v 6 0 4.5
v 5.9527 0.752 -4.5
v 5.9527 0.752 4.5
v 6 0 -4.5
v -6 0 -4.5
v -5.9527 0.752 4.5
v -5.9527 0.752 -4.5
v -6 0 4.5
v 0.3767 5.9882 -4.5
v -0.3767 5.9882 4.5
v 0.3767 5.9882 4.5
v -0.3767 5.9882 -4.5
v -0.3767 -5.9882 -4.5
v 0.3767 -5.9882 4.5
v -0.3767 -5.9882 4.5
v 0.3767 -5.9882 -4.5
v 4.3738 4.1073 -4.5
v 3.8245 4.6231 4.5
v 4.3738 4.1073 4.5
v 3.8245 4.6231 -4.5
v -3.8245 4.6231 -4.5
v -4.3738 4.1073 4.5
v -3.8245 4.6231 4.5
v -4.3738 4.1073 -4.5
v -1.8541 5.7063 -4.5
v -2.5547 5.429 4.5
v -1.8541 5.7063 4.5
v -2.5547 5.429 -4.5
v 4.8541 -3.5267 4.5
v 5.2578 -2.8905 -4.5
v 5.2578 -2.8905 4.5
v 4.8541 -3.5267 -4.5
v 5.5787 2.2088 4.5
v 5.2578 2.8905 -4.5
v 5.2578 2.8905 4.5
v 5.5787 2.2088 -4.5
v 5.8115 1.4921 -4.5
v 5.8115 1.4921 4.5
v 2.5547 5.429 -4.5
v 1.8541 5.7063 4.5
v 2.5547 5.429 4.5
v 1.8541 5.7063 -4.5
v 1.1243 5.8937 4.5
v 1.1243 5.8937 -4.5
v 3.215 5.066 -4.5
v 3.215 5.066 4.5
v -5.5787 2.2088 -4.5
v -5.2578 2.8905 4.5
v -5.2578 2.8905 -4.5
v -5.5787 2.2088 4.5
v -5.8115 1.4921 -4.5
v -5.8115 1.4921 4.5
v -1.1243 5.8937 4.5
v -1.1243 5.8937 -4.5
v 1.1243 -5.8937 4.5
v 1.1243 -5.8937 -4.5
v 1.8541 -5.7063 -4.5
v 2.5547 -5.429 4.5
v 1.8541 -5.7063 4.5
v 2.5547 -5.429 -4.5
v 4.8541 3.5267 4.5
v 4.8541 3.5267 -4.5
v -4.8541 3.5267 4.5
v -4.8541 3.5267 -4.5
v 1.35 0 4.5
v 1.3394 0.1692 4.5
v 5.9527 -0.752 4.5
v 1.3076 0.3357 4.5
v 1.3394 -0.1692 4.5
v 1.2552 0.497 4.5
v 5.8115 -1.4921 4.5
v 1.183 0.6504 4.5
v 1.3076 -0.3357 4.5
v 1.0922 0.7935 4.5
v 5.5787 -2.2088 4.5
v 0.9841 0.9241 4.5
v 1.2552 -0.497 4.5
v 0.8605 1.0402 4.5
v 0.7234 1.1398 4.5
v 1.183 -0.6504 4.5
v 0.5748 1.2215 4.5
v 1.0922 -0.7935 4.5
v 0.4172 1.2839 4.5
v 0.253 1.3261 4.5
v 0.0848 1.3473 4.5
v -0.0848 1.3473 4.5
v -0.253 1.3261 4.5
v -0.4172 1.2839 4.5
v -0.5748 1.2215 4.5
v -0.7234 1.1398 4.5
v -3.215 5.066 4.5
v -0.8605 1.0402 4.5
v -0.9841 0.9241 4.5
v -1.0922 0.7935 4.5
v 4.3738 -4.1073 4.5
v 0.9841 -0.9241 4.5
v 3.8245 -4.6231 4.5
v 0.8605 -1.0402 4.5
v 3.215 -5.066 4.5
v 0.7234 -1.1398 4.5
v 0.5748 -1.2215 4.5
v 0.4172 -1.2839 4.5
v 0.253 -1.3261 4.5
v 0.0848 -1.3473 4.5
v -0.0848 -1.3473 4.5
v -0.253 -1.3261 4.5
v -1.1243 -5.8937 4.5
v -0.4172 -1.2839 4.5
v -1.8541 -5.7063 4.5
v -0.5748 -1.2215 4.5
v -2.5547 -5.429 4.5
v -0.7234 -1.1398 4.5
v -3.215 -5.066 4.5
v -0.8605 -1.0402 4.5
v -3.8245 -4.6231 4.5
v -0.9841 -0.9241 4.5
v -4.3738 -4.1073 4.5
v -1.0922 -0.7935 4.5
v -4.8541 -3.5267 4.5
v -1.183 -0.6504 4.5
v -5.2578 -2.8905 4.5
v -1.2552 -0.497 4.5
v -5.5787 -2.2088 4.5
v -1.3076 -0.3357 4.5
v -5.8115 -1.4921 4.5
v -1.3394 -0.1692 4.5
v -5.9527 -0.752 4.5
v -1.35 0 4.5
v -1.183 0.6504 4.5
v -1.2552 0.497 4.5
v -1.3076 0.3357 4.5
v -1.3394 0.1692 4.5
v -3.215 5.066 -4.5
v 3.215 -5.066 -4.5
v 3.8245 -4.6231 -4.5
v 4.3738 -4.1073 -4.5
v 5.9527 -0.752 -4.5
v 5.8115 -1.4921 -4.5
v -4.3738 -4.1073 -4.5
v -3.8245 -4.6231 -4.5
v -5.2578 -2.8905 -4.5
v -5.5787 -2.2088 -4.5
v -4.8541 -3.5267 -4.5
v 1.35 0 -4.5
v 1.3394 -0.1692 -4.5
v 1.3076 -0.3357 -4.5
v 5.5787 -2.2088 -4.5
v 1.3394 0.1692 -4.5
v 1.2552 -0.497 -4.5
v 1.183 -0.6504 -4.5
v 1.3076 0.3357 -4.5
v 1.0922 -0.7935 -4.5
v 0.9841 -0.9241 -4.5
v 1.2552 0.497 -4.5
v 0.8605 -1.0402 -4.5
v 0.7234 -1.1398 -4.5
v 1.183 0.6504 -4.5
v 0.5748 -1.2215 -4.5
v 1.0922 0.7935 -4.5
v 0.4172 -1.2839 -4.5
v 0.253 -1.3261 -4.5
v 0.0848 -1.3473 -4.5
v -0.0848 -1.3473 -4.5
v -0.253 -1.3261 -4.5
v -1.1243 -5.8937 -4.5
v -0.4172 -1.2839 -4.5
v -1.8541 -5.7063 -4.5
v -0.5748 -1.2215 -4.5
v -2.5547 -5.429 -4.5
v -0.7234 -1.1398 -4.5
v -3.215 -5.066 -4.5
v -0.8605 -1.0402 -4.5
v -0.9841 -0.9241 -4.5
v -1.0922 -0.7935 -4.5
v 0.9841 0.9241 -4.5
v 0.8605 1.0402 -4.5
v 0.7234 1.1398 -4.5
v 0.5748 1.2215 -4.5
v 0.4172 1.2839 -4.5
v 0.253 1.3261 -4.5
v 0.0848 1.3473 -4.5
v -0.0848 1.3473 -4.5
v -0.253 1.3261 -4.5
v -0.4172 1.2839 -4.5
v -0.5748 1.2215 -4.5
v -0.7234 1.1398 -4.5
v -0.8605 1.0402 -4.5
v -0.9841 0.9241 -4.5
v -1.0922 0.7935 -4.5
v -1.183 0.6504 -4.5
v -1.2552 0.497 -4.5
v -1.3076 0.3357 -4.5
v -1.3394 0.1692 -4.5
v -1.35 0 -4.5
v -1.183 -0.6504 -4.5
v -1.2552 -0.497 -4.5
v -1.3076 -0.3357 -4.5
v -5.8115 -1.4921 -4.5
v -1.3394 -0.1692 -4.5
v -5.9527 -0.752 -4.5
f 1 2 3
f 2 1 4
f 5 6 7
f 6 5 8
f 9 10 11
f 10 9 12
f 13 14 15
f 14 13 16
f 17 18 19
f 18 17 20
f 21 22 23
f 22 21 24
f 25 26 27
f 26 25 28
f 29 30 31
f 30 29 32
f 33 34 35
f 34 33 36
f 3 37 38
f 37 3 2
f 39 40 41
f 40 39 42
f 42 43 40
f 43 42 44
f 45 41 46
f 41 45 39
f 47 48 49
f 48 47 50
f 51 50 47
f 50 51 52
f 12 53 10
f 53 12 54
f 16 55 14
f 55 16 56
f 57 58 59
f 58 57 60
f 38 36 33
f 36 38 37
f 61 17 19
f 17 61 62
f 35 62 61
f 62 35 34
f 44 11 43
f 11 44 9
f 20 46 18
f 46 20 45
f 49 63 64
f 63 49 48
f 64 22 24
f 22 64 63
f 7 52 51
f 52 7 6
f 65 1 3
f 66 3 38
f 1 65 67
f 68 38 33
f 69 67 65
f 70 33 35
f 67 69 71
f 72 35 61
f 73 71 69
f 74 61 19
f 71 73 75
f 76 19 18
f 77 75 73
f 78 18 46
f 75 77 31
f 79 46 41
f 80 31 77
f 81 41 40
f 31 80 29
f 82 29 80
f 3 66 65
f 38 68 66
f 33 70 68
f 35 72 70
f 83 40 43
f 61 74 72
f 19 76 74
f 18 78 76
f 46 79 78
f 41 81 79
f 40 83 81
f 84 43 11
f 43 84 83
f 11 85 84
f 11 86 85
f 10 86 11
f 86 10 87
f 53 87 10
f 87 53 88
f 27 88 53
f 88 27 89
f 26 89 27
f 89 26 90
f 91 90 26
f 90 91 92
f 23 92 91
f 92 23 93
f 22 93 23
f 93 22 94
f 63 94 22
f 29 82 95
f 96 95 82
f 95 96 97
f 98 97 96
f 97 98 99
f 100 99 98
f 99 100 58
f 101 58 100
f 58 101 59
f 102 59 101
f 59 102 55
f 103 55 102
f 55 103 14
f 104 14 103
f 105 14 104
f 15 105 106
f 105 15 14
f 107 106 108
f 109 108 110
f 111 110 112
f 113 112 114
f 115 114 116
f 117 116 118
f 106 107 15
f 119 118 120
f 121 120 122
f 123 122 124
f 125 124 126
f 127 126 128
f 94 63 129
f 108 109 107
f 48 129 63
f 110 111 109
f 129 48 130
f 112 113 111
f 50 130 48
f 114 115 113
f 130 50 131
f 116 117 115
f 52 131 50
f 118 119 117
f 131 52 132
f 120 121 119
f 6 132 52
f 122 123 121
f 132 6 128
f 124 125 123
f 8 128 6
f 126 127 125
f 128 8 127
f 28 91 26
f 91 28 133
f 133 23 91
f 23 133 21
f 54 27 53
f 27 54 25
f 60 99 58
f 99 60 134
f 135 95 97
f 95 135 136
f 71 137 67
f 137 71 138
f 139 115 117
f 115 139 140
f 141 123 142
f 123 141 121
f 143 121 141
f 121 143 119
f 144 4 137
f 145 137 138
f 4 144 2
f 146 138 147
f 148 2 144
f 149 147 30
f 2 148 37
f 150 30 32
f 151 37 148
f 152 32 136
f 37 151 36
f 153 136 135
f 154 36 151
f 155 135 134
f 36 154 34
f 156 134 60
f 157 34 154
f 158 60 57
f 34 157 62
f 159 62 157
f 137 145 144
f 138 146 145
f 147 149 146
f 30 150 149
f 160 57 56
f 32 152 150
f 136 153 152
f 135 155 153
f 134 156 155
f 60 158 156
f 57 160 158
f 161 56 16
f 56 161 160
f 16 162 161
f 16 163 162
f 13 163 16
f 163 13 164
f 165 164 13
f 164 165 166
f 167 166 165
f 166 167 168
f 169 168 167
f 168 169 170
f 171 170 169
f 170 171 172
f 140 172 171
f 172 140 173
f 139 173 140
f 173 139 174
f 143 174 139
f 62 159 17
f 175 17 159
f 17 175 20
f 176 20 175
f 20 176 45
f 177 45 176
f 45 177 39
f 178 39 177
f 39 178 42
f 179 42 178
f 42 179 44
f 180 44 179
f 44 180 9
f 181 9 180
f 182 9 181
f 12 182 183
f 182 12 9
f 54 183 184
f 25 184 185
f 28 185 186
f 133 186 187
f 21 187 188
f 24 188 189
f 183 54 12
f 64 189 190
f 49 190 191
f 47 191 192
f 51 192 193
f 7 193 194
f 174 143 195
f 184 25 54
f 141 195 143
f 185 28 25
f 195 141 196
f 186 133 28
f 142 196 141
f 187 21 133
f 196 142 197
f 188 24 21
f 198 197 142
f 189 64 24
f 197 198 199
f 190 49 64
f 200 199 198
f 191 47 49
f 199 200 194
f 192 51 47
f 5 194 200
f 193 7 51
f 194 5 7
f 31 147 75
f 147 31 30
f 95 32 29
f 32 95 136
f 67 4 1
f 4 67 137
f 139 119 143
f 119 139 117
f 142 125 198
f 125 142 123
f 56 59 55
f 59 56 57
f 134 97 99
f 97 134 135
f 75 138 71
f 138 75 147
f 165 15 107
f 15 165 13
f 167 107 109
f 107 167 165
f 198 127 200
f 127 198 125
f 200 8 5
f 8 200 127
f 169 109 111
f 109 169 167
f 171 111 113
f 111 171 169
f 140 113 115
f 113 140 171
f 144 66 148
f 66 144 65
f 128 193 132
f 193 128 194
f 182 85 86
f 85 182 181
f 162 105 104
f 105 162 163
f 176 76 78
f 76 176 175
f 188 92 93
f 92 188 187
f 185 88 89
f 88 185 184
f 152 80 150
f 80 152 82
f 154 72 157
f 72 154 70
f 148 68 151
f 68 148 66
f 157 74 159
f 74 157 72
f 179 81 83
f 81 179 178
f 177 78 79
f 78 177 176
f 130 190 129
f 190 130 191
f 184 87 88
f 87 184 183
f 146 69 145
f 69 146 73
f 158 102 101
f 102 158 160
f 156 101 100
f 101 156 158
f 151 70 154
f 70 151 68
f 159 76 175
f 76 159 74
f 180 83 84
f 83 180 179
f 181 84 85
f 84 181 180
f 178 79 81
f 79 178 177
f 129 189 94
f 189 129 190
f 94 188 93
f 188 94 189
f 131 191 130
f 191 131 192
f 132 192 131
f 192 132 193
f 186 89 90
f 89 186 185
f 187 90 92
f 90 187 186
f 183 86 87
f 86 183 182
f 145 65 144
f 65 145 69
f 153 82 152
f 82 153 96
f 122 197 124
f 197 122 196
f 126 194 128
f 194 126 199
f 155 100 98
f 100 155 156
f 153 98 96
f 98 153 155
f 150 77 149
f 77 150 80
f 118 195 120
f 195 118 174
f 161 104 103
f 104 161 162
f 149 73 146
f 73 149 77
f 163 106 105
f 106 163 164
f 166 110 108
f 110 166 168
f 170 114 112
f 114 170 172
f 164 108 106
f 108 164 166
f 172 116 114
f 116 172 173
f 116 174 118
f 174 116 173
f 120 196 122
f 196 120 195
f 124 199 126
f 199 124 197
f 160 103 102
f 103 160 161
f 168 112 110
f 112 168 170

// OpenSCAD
$fn = 50;


difference() {
	union() {
		translate(v = [0, 0, -4.5000000000]) {
			cylinder(h = 9, r = 6.0000000000);
		}
	}
	union() {
		translate(v = [0, 0, -100.0000000000]) {
			cylinder(h = 200, r = 1.3500000000);
		}
	}
}
